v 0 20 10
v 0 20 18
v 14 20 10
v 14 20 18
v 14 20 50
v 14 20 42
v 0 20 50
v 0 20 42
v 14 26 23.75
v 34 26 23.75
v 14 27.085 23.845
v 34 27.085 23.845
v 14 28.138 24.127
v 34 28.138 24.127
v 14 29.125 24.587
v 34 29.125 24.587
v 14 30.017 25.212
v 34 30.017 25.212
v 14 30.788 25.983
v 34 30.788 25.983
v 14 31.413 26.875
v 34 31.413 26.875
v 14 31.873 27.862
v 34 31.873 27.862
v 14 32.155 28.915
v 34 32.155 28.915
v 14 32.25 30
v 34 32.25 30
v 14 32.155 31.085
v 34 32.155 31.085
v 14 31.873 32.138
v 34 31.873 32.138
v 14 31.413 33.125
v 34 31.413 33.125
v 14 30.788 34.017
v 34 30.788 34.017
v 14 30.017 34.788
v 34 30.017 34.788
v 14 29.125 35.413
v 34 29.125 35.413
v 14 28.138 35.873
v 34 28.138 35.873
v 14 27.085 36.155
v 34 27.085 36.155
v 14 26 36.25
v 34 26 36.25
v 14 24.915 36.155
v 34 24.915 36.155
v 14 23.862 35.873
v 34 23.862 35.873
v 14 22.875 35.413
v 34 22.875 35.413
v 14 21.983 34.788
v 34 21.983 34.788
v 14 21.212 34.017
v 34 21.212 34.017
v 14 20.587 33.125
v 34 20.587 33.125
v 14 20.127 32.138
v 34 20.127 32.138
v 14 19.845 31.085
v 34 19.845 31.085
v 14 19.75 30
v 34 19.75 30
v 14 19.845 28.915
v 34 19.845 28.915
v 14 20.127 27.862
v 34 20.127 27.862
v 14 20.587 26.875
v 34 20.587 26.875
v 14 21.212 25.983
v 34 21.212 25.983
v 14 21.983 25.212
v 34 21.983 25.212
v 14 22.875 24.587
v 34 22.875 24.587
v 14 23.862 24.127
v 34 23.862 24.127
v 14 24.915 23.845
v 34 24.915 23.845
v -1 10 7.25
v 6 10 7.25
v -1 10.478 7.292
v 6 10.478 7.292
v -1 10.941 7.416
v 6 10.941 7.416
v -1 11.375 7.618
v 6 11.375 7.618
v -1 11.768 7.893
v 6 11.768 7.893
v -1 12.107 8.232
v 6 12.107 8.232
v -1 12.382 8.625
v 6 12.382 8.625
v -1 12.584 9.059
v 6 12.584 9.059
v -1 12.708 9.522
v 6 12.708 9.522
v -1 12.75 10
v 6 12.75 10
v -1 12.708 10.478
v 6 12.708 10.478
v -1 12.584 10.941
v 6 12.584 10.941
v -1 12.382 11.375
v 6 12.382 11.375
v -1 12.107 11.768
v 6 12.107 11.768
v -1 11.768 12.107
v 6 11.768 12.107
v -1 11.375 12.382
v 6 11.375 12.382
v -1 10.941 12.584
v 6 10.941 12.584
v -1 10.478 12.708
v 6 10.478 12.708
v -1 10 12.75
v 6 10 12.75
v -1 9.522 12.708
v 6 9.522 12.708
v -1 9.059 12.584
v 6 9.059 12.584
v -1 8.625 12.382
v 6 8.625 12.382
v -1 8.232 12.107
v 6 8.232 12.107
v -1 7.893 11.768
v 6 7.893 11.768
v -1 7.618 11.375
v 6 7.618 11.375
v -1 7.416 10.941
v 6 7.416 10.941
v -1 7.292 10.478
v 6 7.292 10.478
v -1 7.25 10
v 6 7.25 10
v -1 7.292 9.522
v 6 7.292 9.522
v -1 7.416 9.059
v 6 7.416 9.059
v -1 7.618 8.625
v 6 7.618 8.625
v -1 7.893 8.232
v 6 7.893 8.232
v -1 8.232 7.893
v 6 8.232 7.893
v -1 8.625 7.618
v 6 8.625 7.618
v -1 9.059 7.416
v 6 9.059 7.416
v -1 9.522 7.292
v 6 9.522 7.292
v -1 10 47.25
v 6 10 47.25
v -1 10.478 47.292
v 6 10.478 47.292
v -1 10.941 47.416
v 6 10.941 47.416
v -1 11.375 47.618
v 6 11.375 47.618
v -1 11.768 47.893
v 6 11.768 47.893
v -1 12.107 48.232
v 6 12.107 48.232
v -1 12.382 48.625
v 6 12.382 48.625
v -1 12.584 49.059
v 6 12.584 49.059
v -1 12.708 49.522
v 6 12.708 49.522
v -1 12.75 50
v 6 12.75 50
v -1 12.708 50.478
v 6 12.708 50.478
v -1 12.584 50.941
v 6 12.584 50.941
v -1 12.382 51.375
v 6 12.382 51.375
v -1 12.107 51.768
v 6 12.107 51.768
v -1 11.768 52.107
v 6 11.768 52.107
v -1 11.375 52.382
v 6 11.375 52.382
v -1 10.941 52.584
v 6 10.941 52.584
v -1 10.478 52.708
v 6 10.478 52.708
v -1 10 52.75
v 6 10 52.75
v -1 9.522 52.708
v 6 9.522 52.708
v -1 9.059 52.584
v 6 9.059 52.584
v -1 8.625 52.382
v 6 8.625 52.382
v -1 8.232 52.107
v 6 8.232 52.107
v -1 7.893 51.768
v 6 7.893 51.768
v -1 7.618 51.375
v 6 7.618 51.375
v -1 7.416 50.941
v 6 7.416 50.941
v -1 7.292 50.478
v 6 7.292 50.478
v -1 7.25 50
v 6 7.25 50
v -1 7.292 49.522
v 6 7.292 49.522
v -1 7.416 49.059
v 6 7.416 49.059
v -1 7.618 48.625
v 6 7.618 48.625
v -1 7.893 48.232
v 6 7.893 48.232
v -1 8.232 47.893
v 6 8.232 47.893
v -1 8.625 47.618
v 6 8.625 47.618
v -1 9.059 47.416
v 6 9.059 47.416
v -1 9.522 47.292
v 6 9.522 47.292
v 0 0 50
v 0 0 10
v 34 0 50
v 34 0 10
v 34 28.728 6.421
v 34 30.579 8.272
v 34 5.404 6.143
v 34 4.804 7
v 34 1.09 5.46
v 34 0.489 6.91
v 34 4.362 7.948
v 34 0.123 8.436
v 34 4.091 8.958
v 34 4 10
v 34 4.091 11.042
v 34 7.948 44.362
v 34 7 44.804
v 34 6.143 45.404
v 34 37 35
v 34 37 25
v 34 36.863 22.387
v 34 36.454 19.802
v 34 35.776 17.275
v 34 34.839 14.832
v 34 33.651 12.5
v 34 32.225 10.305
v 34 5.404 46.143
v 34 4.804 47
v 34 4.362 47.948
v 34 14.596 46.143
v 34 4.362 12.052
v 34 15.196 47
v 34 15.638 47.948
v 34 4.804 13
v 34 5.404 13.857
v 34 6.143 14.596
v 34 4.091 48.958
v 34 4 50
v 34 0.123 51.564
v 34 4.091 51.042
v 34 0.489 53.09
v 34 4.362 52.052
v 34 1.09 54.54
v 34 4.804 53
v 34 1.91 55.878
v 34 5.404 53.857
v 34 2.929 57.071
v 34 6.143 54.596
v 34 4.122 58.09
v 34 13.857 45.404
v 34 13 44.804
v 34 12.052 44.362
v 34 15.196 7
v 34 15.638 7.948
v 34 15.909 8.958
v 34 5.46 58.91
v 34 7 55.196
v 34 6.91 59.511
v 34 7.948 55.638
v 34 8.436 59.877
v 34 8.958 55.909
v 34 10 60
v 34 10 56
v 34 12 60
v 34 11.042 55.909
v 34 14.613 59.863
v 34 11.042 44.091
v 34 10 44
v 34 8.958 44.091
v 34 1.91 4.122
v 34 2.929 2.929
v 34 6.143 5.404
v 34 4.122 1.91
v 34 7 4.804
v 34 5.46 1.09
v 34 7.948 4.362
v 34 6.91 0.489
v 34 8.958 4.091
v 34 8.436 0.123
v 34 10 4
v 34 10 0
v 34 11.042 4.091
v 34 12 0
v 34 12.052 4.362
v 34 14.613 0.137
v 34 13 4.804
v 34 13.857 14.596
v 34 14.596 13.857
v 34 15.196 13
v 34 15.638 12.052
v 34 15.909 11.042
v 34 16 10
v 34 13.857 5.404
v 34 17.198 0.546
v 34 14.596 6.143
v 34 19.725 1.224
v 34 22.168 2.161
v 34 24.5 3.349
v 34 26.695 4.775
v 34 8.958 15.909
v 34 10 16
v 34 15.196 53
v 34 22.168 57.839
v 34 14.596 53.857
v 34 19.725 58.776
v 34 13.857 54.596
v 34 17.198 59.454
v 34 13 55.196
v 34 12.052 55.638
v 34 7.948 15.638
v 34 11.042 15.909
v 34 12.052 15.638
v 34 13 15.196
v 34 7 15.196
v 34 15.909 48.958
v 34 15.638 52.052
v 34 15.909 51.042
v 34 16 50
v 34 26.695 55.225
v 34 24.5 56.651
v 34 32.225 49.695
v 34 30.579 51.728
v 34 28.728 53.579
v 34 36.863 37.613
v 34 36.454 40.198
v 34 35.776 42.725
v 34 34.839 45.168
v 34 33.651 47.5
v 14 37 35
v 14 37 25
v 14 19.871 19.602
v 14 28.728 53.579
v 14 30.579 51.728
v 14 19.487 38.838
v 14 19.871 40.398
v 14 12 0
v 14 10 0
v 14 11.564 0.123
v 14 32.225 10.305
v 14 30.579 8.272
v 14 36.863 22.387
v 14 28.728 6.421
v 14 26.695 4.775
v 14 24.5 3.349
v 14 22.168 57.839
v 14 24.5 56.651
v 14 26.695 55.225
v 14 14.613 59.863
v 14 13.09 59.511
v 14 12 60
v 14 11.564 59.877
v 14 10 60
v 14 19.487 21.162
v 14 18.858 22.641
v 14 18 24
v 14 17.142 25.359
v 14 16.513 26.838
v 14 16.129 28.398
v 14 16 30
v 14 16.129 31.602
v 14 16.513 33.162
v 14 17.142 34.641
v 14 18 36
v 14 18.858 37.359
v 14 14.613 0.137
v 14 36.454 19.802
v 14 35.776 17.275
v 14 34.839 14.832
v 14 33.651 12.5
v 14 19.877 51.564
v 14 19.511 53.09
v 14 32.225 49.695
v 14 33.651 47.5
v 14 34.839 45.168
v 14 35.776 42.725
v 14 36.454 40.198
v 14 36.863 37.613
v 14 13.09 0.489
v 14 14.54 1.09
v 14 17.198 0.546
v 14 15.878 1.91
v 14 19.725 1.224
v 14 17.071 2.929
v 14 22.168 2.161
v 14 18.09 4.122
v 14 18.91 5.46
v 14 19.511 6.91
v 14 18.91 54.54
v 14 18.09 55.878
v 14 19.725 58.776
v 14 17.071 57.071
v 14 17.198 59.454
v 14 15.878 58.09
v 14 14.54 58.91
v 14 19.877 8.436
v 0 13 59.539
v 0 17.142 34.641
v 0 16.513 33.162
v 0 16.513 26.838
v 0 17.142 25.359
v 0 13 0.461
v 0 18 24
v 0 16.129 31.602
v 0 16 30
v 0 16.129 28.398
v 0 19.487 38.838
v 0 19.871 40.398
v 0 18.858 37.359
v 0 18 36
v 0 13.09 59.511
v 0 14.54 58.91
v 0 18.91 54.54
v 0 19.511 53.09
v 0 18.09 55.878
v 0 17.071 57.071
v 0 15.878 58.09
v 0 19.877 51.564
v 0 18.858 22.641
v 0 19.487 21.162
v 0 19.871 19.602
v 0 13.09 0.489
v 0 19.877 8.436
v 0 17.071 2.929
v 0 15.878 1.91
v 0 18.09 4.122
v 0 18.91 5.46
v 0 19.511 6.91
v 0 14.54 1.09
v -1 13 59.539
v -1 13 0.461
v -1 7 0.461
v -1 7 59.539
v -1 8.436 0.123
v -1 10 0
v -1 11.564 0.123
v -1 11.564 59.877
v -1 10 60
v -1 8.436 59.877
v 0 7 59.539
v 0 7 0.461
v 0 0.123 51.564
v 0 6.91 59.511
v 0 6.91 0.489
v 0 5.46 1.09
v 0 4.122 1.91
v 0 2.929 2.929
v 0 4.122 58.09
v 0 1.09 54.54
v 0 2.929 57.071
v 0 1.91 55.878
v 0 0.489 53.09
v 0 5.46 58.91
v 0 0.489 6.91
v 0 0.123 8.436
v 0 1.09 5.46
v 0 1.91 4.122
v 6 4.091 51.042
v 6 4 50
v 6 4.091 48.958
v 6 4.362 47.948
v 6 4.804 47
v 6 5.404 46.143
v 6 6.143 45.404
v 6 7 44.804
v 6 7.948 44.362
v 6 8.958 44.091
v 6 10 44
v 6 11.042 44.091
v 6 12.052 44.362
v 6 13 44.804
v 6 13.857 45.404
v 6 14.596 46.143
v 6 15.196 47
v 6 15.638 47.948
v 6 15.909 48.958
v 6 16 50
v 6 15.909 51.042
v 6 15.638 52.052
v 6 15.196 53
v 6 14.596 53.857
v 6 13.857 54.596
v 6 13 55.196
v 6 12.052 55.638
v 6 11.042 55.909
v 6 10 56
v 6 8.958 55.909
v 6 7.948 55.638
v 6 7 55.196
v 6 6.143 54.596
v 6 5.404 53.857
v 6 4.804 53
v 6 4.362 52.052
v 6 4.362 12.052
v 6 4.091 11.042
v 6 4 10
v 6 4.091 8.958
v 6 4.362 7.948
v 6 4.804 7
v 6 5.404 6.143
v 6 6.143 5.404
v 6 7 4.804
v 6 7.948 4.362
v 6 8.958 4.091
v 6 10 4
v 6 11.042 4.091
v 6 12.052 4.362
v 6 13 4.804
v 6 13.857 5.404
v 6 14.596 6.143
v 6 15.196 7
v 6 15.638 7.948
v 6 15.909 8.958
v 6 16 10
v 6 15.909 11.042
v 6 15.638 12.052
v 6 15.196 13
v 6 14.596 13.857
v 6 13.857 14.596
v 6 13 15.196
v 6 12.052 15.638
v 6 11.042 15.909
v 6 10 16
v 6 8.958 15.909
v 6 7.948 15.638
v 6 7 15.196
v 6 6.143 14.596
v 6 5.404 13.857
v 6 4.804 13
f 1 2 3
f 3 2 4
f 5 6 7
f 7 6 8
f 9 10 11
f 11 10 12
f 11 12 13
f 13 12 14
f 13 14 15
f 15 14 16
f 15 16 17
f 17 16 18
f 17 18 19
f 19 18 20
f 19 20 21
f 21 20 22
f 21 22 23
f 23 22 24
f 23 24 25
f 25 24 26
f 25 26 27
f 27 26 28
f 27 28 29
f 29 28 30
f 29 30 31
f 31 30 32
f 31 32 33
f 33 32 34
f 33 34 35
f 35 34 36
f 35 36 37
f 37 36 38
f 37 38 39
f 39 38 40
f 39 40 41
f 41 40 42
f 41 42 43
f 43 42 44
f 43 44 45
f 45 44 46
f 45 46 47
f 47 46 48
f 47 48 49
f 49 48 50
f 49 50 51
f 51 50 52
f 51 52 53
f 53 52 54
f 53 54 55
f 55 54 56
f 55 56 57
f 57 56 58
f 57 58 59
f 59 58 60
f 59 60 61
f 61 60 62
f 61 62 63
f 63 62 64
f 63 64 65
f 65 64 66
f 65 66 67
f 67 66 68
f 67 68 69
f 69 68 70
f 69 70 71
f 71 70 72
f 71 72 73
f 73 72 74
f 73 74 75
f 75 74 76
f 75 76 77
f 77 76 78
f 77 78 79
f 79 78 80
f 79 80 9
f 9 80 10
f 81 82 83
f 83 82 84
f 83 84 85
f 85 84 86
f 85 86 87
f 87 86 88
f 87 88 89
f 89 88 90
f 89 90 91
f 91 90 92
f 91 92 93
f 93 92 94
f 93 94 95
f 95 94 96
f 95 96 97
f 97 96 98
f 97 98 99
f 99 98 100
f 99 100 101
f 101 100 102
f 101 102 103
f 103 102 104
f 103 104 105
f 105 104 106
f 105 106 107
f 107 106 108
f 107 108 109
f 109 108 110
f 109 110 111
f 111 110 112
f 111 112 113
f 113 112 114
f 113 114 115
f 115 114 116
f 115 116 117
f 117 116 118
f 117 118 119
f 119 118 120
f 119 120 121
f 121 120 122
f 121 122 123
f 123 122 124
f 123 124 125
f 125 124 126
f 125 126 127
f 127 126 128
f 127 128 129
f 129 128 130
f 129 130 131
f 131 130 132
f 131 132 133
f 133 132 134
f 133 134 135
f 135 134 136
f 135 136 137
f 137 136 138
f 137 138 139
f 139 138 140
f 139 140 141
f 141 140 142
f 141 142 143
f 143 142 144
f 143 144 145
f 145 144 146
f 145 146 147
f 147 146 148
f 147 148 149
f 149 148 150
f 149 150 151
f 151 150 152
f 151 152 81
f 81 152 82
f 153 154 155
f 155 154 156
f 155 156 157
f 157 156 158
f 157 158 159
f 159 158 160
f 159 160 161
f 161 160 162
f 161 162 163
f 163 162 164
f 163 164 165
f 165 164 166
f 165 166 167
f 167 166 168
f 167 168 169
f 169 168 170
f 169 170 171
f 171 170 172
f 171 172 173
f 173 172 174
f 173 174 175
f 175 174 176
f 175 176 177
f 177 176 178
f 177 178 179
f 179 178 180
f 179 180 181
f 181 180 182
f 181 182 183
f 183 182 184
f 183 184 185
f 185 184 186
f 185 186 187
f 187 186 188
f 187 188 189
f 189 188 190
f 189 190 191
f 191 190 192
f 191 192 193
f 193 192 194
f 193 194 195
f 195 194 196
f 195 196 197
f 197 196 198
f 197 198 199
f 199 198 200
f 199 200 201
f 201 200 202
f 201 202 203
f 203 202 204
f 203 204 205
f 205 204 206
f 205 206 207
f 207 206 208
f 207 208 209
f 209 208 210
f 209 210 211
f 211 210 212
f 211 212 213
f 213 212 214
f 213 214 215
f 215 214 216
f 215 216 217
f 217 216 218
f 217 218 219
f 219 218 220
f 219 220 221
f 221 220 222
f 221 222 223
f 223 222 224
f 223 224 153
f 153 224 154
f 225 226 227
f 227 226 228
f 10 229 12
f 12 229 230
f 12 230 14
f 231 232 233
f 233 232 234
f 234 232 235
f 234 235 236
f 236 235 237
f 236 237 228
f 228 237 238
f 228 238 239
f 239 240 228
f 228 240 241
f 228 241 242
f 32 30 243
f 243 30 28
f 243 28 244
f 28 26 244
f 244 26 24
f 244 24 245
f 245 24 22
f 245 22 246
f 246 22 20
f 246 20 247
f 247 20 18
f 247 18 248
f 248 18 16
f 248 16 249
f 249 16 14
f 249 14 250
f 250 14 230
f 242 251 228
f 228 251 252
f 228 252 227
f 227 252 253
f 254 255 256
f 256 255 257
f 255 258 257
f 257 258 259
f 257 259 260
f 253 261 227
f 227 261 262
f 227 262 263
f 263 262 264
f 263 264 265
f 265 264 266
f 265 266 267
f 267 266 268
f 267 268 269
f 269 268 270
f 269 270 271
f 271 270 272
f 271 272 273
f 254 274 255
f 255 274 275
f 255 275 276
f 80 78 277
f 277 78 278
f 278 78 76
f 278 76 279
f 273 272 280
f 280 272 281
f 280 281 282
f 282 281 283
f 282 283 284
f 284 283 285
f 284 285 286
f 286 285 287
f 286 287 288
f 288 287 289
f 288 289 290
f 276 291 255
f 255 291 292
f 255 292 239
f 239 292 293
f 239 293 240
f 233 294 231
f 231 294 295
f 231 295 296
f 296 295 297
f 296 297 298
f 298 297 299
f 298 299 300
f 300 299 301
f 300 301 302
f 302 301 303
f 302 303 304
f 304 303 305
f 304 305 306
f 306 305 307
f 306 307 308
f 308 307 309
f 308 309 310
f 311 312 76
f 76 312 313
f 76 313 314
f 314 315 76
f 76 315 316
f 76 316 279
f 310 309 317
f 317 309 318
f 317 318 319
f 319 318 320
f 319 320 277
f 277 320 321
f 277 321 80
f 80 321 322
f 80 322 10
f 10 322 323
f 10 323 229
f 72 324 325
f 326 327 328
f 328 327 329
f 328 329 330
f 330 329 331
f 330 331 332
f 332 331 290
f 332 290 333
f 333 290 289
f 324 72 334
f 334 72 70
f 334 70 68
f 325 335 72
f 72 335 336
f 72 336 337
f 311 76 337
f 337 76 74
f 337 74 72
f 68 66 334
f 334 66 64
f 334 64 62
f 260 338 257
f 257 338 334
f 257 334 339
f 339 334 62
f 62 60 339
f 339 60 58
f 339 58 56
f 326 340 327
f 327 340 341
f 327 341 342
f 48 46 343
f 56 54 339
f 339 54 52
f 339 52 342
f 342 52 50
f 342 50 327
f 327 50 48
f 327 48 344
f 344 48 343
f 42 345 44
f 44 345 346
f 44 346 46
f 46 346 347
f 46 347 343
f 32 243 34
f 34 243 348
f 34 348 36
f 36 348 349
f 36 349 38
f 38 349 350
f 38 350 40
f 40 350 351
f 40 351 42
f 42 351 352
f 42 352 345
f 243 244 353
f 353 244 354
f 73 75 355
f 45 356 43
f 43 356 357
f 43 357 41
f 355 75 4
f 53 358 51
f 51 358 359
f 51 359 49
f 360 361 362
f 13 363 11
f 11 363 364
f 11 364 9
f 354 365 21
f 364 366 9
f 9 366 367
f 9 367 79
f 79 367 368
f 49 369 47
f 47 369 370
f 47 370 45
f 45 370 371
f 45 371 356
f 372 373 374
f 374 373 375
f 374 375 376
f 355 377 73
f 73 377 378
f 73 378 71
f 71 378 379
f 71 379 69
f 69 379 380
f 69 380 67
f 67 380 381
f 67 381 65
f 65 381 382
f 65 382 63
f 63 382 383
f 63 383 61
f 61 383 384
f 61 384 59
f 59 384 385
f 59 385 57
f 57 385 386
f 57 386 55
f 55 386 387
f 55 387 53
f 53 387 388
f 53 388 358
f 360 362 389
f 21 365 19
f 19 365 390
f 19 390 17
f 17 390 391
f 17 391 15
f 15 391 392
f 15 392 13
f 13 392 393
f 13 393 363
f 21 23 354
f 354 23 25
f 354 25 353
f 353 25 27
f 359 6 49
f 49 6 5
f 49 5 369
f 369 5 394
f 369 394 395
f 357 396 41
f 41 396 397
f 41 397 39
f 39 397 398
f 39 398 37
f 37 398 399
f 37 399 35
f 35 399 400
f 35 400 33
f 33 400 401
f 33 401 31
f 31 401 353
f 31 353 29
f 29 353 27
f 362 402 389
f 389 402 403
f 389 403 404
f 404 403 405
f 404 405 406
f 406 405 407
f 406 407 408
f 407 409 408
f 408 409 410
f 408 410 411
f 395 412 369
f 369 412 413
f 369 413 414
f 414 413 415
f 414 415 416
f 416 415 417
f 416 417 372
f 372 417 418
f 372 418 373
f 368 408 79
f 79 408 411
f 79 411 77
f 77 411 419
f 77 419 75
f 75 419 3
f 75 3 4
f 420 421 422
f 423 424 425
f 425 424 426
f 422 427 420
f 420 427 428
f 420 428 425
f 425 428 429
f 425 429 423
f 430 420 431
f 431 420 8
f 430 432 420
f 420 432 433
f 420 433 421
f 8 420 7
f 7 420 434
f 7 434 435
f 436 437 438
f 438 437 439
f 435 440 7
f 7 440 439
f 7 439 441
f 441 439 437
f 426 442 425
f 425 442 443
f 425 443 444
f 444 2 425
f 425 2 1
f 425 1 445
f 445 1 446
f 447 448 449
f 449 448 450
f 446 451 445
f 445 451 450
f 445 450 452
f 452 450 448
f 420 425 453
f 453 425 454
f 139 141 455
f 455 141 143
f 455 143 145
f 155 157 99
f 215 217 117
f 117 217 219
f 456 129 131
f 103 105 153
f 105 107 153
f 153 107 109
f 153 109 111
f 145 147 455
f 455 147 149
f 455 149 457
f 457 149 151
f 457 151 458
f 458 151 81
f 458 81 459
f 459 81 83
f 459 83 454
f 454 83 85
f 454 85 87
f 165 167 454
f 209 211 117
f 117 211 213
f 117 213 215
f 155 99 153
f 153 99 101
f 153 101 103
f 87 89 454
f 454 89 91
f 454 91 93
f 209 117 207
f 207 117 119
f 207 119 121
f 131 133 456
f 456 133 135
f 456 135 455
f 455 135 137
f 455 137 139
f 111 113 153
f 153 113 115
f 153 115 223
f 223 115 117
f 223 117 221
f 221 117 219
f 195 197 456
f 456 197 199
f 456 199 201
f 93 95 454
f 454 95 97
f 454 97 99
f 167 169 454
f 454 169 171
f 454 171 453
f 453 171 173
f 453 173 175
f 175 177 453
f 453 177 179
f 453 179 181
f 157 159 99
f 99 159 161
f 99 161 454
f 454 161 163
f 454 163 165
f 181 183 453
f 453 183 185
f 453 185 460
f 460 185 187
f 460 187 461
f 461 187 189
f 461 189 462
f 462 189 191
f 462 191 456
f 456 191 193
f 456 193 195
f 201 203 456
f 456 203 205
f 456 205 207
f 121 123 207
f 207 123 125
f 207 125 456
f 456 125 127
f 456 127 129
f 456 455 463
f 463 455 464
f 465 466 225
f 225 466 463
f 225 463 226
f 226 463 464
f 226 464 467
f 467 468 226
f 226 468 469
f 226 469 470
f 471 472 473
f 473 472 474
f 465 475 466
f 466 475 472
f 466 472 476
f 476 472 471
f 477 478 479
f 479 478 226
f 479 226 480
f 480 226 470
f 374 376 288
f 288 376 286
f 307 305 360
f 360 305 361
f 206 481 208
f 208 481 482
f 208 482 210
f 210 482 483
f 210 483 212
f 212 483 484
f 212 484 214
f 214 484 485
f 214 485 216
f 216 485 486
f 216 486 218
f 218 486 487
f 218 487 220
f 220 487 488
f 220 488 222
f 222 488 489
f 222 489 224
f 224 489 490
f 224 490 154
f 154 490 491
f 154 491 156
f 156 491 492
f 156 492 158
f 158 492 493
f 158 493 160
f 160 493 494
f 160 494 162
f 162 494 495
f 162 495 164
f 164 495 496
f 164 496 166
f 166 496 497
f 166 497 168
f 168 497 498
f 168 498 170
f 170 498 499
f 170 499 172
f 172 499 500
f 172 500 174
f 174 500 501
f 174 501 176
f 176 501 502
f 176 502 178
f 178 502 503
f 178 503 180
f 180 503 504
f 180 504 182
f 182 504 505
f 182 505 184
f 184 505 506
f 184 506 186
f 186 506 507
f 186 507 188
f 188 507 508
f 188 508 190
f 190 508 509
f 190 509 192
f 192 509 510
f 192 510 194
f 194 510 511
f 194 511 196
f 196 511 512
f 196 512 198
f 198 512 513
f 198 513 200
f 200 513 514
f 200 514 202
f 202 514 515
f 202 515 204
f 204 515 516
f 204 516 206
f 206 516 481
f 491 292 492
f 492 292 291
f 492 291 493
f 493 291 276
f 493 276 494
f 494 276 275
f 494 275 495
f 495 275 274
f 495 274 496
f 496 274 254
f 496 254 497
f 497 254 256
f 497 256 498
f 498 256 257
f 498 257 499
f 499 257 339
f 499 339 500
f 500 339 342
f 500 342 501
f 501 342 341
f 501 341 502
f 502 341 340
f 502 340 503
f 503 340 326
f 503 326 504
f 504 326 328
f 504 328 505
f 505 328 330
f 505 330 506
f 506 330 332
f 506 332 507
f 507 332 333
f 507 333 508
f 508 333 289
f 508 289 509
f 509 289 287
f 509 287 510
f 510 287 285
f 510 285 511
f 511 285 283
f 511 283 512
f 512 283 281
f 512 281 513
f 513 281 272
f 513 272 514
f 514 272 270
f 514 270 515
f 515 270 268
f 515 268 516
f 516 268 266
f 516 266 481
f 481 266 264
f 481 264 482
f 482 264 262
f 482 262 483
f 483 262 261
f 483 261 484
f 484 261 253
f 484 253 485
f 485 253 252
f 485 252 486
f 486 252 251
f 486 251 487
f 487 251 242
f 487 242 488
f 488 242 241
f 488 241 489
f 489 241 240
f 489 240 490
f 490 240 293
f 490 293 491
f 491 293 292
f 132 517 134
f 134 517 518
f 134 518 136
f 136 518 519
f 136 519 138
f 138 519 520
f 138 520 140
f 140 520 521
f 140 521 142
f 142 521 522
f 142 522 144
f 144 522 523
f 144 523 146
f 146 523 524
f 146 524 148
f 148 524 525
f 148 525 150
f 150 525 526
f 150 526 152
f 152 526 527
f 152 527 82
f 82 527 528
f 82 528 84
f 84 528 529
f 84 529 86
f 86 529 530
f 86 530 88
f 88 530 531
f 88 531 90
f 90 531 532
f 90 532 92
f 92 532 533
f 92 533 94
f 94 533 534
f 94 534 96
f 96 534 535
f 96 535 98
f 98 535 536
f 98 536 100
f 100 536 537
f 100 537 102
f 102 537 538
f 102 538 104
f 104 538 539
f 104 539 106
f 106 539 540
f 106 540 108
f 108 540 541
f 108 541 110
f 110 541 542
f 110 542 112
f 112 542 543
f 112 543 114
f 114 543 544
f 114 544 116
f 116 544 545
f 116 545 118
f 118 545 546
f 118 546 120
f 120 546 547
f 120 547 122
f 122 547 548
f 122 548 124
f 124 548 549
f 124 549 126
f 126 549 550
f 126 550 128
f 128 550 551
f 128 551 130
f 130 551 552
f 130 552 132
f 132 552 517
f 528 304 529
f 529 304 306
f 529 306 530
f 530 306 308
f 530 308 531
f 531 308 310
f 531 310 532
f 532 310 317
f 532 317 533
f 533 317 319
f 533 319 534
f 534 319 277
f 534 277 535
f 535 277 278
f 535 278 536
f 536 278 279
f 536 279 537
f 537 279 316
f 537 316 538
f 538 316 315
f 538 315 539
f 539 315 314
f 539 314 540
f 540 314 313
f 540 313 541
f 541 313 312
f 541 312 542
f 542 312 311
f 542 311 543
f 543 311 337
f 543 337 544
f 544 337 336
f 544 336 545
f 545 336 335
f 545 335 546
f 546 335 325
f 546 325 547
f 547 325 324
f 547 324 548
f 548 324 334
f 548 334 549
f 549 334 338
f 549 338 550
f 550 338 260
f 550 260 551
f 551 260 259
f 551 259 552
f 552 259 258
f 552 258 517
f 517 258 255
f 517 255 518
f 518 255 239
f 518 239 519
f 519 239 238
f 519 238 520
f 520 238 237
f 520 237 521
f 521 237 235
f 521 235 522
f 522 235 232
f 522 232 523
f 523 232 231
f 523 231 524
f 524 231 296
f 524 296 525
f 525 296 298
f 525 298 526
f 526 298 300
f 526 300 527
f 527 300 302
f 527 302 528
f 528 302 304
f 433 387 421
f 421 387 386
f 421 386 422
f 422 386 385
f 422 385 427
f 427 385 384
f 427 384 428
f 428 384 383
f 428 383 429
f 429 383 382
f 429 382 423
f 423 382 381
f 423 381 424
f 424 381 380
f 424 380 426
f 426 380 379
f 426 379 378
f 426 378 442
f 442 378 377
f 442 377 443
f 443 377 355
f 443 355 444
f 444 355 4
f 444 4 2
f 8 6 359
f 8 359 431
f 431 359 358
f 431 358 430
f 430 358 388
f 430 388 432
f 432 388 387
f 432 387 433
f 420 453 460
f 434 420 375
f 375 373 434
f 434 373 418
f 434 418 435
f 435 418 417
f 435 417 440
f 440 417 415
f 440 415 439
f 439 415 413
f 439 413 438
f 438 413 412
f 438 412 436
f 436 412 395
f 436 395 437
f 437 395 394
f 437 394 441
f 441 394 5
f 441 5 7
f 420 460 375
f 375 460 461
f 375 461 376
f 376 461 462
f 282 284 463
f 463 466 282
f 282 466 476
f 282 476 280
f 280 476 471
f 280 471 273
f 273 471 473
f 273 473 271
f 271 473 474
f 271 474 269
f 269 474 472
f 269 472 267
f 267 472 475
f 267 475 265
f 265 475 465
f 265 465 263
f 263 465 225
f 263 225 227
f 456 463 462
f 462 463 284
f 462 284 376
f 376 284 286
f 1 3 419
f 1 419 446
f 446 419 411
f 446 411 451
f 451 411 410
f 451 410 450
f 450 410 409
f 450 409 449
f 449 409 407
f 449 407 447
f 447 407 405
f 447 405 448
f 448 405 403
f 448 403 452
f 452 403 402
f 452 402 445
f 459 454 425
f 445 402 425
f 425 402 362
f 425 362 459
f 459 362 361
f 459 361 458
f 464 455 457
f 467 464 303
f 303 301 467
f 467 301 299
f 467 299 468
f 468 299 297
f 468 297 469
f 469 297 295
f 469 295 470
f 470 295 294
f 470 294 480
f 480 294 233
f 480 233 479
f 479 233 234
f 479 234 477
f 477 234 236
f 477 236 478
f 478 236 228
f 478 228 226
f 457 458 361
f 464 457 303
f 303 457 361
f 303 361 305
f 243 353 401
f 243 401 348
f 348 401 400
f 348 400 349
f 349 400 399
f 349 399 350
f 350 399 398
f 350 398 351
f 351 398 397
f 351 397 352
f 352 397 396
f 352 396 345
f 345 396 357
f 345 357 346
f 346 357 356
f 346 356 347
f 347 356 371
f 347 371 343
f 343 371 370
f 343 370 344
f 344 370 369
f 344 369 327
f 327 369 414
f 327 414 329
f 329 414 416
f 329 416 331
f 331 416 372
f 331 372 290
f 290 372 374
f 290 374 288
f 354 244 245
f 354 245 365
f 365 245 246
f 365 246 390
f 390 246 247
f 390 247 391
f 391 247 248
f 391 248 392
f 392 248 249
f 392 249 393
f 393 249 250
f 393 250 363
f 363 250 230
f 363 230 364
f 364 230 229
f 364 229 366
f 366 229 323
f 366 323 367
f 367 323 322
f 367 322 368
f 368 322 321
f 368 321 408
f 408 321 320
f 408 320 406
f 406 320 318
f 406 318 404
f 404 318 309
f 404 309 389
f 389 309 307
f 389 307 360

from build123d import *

# Parameters (mm, degrees)
SALIENTE_EXTRUIR1_DEPTH = 60
CROQUIS2_R              = 2.75
CORTAR_EXTRUIR1_DEPTH   = 35
CROQUIS3_R              = 6
CORTAR_EXTRUIR2_DEPTH   = 28
CORTAR_EXTRUIR3_REACH   = 80.702
CROQUIS4_R              = 6.25
CROQUIS5_R              = 10
CORTAR_EXTRUIR4_DEPTH   = 14
REDONDEO1_R             = 10
REDONDEO2_R             = 10
REDONDEO5_R             = 25


with BuildPart() as part:
    # Croquis1 → Saliente-Extruir1 (new body)
    with BuildSketch(Plane.XY):
        Polygon((0, 0), (0, 7), (-1, 7), (-1, 13), (0, 13), (0, 20), (14, 20), (14, 37), (34, 37), (34, 0), align=None)
    extrude(amount=SALIENTE_EXTRUIR1_DEPTH)

    # Croquis2 → Cortar-Extruir1 (cut)
    with BuildSketch(Plane(origin=(34, 0, 0), x_dir=(0, 0, -1), z_dir=(1, 0, 0))):
        with Locations((-50, 10)):
            Circle(CROQUIS2_R)
        with Locations((-10, 10)):
            Circle(CROQUIS2_R)
    extrude(amount=-CORTAR_EXTRUIR1_DEPTH, mode=Mode.SUBTRACT)

    # Croquis3 → Cortar-Extruir2 (cut)
    with BuildSketch(Plane(origin=(34, 0, 0), x_dir=(0, 0, -1), z_dir=(1, 0, 0))):
        with Locations((-50, 10)):
            Circle(CROQUIS3_R)
        with Locations((-10, 10)):
            Circle(CROQUIS3_R)
    extrude(amount=-CORTAR_EXTRUIR2_DEPTH, mode=Mode.SUBTRACT)

    # Croquis4 → Cortar-Extruir3 (cut, up to next)
    with BuildSketch(Plane(origin=(34, 0, 0), x_dir=(0, 0, -1), z_dir=(1, 0, 0)), mode=Mode.PRIVATE) as cortar_extruir3_sk1:
        with Locations((-30, 26)):
            Circle(CROQUIS4_R)
    cortar_extruir3_tool1 = extrude(cortar_extruir3_sk1.sketch, amount=-CORTAR_EXTRUIR3_REACH, mode=Mode.PRIVATE) & part.part
    add(cortar_extruir3_tool1.solids().sort_by_distance((34, 26, 30))[0], mode=Mode.SUBTRACT)

    # Croquis5 → Cortar-Extruir4 (cut)
    with BuildSketch(Plane.ZY.offset(-14)):
        with Locations((30, 26)):
            Circle(CROQUIS5_R)
    extrude(amount=CORTAR_EXTRUIR4_DEPTH, mode=Mode.SUBTRACT)

    # Redondeo1
    redondeo1_edges = [part.edges().sort_by_distance(p)[0] for p in [
        (7, 20, 22),
        (7, 20, 38),
    ]]
    fillet(redondeo1_edges, radius=REDONDEO1_R)

    # Redondeo2
    redondeo2_edges = [part.edges().sort_by_distance(p)[0] for p in [
        (17, 0, 60),
        (7, 20, 60),
        (17, 0, 0),
        (7, 20, 0),
    ]]
    fillet(redondeo2_edges, radius=REDONDEO2_R - 0.0001)  # a hair under: the kernel refuses the full size

    # Redondeo5
    redondeo5_edges = [part.edges().sort_by_distance(p)[0] for p in [
        (24, 37, 60),
        (24, 37, 0),
    ]]
    fillet(redondeo5_edges, radius=REDONDEO5_R)


solid = part.part
